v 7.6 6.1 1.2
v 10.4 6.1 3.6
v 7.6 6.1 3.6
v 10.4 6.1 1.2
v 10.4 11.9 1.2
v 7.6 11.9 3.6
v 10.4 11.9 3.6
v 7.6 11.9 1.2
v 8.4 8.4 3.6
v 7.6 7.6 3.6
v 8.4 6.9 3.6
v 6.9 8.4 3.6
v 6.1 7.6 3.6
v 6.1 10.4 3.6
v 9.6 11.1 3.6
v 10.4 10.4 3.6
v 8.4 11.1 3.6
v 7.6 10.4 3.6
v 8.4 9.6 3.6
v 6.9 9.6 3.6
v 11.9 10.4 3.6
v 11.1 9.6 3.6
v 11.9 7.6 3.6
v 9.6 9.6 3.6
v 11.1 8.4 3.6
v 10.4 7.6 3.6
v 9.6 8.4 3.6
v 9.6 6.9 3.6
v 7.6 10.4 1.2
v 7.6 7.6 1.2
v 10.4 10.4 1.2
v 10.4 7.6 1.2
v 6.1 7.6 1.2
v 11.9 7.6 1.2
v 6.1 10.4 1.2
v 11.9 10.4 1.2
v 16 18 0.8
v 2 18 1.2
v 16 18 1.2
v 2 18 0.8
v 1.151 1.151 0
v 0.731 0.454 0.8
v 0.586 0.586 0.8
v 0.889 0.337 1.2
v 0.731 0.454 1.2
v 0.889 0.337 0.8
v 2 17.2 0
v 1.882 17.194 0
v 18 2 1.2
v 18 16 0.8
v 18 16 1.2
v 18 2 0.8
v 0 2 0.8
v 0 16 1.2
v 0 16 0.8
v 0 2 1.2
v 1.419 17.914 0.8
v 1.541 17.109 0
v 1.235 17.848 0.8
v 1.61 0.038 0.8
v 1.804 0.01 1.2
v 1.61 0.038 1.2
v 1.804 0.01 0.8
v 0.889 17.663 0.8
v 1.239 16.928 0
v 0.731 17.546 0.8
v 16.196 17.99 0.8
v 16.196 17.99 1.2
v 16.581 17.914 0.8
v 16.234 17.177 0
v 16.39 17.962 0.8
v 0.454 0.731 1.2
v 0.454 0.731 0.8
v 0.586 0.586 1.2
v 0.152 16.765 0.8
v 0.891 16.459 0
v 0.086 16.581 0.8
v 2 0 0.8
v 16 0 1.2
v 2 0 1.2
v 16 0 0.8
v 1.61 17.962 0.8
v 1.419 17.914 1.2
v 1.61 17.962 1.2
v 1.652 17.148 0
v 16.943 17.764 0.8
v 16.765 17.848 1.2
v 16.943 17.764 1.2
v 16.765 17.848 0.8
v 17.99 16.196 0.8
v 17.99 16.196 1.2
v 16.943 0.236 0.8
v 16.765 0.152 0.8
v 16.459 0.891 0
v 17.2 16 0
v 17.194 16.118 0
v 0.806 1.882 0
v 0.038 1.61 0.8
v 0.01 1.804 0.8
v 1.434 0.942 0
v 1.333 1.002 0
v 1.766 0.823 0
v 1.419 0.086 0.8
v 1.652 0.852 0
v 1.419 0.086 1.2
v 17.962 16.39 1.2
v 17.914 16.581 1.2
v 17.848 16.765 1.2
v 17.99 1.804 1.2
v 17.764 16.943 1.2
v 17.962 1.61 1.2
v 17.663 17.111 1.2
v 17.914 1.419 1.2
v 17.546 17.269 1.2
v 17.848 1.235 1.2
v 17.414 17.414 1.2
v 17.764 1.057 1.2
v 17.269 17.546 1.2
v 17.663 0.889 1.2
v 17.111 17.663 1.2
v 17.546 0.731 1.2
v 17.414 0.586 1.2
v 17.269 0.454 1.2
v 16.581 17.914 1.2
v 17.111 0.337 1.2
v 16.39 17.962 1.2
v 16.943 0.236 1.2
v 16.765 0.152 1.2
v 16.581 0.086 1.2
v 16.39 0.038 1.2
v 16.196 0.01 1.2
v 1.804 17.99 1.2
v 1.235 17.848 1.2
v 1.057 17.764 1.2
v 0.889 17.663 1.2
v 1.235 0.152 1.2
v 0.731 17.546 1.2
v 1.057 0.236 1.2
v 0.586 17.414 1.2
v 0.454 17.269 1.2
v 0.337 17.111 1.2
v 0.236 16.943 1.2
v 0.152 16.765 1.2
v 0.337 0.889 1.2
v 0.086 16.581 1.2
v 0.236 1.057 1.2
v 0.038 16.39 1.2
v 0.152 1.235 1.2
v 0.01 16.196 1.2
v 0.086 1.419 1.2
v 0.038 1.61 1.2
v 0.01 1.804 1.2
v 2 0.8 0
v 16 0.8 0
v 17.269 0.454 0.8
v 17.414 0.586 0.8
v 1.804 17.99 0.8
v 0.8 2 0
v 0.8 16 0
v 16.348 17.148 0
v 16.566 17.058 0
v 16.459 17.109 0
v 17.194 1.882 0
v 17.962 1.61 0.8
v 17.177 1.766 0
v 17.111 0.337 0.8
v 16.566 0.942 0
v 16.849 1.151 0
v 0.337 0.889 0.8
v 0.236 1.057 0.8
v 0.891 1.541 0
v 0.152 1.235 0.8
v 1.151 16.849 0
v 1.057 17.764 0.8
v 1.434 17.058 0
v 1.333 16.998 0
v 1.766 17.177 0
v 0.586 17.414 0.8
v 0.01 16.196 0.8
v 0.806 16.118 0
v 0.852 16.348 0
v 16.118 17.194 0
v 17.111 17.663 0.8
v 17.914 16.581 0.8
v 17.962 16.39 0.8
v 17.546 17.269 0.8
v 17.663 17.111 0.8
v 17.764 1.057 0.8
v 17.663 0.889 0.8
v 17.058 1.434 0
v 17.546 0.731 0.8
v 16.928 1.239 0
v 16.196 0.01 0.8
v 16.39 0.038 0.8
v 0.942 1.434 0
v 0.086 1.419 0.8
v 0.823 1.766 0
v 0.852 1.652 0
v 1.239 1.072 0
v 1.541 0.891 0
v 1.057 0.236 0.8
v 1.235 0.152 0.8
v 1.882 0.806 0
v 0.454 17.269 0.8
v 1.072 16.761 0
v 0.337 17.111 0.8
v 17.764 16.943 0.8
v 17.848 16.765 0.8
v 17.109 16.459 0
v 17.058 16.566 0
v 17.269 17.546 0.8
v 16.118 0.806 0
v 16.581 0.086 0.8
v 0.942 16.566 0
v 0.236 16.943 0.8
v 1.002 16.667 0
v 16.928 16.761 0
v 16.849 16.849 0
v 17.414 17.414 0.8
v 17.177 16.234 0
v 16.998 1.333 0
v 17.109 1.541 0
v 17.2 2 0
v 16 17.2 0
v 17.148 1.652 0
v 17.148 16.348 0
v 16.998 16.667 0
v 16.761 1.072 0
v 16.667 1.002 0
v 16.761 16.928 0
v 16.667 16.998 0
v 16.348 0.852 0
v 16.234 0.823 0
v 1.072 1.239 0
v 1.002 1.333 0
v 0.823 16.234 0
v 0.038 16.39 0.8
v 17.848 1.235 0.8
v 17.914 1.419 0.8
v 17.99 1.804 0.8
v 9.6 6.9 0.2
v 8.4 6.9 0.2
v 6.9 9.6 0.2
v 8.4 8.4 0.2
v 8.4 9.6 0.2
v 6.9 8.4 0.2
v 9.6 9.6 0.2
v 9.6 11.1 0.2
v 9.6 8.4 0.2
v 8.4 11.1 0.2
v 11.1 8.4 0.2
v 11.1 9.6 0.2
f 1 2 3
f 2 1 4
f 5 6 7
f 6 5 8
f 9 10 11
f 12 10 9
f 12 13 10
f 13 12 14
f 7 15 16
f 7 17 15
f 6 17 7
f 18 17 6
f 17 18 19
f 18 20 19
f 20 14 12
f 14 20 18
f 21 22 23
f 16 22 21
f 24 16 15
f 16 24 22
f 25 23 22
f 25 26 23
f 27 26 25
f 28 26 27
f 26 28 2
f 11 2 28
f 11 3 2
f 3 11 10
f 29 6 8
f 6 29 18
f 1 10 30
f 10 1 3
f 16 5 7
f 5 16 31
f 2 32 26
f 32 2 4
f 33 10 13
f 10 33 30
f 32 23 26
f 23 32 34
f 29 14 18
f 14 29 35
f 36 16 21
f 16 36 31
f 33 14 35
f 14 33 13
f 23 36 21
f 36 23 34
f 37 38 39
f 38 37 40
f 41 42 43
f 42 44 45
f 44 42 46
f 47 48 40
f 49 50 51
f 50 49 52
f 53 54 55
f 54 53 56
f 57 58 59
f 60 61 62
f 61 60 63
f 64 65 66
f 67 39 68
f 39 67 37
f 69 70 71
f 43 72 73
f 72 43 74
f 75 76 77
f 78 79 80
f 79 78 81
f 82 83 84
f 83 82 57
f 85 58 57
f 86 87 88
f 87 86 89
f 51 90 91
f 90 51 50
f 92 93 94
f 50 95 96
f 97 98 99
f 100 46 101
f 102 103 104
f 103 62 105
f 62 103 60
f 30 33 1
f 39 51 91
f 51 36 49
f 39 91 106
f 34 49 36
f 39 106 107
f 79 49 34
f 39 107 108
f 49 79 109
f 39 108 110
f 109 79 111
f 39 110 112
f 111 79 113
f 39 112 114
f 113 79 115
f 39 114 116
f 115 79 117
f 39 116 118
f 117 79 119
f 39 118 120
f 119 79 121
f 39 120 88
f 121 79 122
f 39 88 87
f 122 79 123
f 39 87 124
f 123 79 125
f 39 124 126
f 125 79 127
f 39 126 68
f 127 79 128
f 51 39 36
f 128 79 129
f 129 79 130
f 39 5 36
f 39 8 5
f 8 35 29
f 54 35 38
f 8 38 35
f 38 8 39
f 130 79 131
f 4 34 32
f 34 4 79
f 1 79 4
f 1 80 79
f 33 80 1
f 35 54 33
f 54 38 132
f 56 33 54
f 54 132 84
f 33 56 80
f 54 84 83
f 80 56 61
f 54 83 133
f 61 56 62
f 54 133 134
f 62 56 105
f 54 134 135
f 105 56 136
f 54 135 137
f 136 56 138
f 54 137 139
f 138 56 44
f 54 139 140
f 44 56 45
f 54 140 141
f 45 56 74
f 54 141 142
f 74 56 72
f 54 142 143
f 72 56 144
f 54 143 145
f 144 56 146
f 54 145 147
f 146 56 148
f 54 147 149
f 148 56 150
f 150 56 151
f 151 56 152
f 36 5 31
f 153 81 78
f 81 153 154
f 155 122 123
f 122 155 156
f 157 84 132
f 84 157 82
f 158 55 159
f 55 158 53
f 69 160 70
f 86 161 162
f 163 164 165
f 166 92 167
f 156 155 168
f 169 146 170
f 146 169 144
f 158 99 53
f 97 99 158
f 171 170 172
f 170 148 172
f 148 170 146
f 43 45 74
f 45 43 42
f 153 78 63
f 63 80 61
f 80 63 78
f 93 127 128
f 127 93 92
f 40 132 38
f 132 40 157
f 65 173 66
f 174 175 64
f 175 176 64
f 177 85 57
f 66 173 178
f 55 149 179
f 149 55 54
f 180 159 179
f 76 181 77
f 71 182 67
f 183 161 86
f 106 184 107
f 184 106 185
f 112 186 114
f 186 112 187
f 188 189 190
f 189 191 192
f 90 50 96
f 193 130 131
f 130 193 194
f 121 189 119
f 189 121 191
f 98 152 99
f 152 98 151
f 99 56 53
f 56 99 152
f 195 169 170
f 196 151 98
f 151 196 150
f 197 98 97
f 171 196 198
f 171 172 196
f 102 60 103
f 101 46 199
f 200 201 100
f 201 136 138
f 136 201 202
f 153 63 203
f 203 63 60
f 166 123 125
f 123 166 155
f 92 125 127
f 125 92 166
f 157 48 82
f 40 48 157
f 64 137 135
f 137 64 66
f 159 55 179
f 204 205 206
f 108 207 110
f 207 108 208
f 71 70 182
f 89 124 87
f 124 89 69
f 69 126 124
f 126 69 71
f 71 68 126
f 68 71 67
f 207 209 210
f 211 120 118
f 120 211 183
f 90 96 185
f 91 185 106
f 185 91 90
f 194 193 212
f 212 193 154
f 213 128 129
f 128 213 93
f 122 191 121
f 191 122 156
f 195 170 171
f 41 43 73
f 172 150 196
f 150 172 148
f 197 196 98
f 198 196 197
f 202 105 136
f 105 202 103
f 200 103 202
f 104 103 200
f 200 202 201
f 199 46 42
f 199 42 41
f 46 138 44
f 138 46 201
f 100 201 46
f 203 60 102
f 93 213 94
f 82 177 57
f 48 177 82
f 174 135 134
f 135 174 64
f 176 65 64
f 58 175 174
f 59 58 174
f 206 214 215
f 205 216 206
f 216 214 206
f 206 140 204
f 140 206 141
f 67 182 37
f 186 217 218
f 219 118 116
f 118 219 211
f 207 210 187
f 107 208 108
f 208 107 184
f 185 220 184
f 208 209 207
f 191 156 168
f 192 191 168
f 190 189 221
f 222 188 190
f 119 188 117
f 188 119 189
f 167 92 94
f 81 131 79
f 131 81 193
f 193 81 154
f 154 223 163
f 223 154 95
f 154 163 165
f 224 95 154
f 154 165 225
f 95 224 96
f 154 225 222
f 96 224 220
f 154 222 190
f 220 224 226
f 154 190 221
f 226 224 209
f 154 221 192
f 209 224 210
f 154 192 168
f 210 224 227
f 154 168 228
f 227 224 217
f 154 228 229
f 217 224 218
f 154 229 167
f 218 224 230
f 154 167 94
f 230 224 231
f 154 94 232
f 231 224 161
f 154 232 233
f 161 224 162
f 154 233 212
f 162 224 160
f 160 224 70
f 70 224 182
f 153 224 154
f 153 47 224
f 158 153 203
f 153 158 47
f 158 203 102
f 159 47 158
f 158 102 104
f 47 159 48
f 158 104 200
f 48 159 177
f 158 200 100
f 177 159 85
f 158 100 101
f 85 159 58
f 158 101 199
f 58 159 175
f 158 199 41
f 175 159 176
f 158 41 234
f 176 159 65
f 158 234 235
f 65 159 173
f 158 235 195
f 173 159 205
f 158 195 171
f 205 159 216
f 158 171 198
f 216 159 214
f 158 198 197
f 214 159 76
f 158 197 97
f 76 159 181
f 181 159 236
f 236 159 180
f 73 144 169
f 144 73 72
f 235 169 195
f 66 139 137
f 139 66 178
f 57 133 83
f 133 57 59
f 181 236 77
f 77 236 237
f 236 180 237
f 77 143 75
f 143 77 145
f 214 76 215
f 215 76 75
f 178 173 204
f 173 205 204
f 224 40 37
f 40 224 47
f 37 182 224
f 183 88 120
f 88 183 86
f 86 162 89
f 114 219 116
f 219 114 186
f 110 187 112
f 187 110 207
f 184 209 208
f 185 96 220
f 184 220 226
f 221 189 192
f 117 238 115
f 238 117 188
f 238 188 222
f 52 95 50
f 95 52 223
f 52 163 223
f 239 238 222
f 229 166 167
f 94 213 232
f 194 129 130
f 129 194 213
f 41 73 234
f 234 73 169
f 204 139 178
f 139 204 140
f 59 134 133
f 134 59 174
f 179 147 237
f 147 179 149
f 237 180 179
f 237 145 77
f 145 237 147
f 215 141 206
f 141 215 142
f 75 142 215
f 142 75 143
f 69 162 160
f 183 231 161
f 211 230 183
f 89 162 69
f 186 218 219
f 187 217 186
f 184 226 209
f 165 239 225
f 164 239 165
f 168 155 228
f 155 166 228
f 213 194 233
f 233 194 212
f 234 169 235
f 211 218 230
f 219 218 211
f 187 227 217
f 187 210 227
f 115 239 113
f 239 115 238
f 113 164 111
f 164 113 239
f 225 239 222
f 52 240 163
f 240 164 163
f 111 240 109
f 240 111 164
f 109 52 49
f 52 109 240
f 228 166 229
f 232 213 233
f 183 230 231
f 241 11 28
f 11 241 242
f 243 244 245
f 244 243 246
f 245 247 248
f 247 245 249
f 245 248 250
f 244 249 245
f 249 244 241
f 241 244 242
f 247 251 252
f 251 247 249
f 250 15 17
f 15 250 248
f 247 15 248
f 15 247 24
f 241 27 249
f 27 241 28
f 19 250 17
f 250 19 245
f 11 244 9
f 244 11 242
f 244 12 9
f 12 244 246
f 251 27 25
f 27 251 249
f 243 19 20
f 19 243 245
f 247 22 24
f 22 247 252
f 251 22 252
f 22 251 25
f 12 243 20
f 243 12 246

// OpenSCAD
zCav = 2.4;

zStemExtra = 1;
zStem = zCav + zStemExtra;
tCross = 1.2;
wCross = 4.2;
dStem = 5.8;
tWallStem = 0.8;

xyCap = 18;
zCap = zStemExtra + 0.2;
capChamfer = 0.8;

rFillet = 2;

module keycap(isHome=false)
{
  difference()
  {
    union()
    {
      translate([0, 0, zCav]) minkowski()
      {
        cube([xyCap-2*rFillet, xyCap-2*rFillet, zCap-capChamfer]);
        translate([rFillet, rFillet, 0])
        cylinder(h=capChamfer, r1=rFillet, r2=rFillet-capChamfer, $fn=64);
      }
      translate([xyCap/2, xyCap/2, zStem/2])
      {
        *cylinder(h=zStem, d=dStem, center=true, $fn=64);
        cube([wCross+2*tWallStem, tCross+2*tWallStem, zStem], center=true);
        cube([tCross+2*tWallStem, wCross+2*tWallStem, zStem], center=true);
      }
    }
    translate([xyCap/2, xyCap/2, zStem/2-(isHome?0:1)])
    {
      cube([wCross, tCross, zStem+2], center=true);
      cube([tCross, wCross, zStem+2], center=true);
    }
  }
}

difference()
{
  translate([0, 0, zCap+zCav]) rotate([180, 0, 90]) keycap(false);
  translate([xyCap/2, -1, -1])
  *cube([xyCap/2+1, xyCap+2, zCav+zCap+2]);
  translate([-1, -1, -1])
  *cube([xyCap/2+1, xyCap+2, zCap+2]);
}
